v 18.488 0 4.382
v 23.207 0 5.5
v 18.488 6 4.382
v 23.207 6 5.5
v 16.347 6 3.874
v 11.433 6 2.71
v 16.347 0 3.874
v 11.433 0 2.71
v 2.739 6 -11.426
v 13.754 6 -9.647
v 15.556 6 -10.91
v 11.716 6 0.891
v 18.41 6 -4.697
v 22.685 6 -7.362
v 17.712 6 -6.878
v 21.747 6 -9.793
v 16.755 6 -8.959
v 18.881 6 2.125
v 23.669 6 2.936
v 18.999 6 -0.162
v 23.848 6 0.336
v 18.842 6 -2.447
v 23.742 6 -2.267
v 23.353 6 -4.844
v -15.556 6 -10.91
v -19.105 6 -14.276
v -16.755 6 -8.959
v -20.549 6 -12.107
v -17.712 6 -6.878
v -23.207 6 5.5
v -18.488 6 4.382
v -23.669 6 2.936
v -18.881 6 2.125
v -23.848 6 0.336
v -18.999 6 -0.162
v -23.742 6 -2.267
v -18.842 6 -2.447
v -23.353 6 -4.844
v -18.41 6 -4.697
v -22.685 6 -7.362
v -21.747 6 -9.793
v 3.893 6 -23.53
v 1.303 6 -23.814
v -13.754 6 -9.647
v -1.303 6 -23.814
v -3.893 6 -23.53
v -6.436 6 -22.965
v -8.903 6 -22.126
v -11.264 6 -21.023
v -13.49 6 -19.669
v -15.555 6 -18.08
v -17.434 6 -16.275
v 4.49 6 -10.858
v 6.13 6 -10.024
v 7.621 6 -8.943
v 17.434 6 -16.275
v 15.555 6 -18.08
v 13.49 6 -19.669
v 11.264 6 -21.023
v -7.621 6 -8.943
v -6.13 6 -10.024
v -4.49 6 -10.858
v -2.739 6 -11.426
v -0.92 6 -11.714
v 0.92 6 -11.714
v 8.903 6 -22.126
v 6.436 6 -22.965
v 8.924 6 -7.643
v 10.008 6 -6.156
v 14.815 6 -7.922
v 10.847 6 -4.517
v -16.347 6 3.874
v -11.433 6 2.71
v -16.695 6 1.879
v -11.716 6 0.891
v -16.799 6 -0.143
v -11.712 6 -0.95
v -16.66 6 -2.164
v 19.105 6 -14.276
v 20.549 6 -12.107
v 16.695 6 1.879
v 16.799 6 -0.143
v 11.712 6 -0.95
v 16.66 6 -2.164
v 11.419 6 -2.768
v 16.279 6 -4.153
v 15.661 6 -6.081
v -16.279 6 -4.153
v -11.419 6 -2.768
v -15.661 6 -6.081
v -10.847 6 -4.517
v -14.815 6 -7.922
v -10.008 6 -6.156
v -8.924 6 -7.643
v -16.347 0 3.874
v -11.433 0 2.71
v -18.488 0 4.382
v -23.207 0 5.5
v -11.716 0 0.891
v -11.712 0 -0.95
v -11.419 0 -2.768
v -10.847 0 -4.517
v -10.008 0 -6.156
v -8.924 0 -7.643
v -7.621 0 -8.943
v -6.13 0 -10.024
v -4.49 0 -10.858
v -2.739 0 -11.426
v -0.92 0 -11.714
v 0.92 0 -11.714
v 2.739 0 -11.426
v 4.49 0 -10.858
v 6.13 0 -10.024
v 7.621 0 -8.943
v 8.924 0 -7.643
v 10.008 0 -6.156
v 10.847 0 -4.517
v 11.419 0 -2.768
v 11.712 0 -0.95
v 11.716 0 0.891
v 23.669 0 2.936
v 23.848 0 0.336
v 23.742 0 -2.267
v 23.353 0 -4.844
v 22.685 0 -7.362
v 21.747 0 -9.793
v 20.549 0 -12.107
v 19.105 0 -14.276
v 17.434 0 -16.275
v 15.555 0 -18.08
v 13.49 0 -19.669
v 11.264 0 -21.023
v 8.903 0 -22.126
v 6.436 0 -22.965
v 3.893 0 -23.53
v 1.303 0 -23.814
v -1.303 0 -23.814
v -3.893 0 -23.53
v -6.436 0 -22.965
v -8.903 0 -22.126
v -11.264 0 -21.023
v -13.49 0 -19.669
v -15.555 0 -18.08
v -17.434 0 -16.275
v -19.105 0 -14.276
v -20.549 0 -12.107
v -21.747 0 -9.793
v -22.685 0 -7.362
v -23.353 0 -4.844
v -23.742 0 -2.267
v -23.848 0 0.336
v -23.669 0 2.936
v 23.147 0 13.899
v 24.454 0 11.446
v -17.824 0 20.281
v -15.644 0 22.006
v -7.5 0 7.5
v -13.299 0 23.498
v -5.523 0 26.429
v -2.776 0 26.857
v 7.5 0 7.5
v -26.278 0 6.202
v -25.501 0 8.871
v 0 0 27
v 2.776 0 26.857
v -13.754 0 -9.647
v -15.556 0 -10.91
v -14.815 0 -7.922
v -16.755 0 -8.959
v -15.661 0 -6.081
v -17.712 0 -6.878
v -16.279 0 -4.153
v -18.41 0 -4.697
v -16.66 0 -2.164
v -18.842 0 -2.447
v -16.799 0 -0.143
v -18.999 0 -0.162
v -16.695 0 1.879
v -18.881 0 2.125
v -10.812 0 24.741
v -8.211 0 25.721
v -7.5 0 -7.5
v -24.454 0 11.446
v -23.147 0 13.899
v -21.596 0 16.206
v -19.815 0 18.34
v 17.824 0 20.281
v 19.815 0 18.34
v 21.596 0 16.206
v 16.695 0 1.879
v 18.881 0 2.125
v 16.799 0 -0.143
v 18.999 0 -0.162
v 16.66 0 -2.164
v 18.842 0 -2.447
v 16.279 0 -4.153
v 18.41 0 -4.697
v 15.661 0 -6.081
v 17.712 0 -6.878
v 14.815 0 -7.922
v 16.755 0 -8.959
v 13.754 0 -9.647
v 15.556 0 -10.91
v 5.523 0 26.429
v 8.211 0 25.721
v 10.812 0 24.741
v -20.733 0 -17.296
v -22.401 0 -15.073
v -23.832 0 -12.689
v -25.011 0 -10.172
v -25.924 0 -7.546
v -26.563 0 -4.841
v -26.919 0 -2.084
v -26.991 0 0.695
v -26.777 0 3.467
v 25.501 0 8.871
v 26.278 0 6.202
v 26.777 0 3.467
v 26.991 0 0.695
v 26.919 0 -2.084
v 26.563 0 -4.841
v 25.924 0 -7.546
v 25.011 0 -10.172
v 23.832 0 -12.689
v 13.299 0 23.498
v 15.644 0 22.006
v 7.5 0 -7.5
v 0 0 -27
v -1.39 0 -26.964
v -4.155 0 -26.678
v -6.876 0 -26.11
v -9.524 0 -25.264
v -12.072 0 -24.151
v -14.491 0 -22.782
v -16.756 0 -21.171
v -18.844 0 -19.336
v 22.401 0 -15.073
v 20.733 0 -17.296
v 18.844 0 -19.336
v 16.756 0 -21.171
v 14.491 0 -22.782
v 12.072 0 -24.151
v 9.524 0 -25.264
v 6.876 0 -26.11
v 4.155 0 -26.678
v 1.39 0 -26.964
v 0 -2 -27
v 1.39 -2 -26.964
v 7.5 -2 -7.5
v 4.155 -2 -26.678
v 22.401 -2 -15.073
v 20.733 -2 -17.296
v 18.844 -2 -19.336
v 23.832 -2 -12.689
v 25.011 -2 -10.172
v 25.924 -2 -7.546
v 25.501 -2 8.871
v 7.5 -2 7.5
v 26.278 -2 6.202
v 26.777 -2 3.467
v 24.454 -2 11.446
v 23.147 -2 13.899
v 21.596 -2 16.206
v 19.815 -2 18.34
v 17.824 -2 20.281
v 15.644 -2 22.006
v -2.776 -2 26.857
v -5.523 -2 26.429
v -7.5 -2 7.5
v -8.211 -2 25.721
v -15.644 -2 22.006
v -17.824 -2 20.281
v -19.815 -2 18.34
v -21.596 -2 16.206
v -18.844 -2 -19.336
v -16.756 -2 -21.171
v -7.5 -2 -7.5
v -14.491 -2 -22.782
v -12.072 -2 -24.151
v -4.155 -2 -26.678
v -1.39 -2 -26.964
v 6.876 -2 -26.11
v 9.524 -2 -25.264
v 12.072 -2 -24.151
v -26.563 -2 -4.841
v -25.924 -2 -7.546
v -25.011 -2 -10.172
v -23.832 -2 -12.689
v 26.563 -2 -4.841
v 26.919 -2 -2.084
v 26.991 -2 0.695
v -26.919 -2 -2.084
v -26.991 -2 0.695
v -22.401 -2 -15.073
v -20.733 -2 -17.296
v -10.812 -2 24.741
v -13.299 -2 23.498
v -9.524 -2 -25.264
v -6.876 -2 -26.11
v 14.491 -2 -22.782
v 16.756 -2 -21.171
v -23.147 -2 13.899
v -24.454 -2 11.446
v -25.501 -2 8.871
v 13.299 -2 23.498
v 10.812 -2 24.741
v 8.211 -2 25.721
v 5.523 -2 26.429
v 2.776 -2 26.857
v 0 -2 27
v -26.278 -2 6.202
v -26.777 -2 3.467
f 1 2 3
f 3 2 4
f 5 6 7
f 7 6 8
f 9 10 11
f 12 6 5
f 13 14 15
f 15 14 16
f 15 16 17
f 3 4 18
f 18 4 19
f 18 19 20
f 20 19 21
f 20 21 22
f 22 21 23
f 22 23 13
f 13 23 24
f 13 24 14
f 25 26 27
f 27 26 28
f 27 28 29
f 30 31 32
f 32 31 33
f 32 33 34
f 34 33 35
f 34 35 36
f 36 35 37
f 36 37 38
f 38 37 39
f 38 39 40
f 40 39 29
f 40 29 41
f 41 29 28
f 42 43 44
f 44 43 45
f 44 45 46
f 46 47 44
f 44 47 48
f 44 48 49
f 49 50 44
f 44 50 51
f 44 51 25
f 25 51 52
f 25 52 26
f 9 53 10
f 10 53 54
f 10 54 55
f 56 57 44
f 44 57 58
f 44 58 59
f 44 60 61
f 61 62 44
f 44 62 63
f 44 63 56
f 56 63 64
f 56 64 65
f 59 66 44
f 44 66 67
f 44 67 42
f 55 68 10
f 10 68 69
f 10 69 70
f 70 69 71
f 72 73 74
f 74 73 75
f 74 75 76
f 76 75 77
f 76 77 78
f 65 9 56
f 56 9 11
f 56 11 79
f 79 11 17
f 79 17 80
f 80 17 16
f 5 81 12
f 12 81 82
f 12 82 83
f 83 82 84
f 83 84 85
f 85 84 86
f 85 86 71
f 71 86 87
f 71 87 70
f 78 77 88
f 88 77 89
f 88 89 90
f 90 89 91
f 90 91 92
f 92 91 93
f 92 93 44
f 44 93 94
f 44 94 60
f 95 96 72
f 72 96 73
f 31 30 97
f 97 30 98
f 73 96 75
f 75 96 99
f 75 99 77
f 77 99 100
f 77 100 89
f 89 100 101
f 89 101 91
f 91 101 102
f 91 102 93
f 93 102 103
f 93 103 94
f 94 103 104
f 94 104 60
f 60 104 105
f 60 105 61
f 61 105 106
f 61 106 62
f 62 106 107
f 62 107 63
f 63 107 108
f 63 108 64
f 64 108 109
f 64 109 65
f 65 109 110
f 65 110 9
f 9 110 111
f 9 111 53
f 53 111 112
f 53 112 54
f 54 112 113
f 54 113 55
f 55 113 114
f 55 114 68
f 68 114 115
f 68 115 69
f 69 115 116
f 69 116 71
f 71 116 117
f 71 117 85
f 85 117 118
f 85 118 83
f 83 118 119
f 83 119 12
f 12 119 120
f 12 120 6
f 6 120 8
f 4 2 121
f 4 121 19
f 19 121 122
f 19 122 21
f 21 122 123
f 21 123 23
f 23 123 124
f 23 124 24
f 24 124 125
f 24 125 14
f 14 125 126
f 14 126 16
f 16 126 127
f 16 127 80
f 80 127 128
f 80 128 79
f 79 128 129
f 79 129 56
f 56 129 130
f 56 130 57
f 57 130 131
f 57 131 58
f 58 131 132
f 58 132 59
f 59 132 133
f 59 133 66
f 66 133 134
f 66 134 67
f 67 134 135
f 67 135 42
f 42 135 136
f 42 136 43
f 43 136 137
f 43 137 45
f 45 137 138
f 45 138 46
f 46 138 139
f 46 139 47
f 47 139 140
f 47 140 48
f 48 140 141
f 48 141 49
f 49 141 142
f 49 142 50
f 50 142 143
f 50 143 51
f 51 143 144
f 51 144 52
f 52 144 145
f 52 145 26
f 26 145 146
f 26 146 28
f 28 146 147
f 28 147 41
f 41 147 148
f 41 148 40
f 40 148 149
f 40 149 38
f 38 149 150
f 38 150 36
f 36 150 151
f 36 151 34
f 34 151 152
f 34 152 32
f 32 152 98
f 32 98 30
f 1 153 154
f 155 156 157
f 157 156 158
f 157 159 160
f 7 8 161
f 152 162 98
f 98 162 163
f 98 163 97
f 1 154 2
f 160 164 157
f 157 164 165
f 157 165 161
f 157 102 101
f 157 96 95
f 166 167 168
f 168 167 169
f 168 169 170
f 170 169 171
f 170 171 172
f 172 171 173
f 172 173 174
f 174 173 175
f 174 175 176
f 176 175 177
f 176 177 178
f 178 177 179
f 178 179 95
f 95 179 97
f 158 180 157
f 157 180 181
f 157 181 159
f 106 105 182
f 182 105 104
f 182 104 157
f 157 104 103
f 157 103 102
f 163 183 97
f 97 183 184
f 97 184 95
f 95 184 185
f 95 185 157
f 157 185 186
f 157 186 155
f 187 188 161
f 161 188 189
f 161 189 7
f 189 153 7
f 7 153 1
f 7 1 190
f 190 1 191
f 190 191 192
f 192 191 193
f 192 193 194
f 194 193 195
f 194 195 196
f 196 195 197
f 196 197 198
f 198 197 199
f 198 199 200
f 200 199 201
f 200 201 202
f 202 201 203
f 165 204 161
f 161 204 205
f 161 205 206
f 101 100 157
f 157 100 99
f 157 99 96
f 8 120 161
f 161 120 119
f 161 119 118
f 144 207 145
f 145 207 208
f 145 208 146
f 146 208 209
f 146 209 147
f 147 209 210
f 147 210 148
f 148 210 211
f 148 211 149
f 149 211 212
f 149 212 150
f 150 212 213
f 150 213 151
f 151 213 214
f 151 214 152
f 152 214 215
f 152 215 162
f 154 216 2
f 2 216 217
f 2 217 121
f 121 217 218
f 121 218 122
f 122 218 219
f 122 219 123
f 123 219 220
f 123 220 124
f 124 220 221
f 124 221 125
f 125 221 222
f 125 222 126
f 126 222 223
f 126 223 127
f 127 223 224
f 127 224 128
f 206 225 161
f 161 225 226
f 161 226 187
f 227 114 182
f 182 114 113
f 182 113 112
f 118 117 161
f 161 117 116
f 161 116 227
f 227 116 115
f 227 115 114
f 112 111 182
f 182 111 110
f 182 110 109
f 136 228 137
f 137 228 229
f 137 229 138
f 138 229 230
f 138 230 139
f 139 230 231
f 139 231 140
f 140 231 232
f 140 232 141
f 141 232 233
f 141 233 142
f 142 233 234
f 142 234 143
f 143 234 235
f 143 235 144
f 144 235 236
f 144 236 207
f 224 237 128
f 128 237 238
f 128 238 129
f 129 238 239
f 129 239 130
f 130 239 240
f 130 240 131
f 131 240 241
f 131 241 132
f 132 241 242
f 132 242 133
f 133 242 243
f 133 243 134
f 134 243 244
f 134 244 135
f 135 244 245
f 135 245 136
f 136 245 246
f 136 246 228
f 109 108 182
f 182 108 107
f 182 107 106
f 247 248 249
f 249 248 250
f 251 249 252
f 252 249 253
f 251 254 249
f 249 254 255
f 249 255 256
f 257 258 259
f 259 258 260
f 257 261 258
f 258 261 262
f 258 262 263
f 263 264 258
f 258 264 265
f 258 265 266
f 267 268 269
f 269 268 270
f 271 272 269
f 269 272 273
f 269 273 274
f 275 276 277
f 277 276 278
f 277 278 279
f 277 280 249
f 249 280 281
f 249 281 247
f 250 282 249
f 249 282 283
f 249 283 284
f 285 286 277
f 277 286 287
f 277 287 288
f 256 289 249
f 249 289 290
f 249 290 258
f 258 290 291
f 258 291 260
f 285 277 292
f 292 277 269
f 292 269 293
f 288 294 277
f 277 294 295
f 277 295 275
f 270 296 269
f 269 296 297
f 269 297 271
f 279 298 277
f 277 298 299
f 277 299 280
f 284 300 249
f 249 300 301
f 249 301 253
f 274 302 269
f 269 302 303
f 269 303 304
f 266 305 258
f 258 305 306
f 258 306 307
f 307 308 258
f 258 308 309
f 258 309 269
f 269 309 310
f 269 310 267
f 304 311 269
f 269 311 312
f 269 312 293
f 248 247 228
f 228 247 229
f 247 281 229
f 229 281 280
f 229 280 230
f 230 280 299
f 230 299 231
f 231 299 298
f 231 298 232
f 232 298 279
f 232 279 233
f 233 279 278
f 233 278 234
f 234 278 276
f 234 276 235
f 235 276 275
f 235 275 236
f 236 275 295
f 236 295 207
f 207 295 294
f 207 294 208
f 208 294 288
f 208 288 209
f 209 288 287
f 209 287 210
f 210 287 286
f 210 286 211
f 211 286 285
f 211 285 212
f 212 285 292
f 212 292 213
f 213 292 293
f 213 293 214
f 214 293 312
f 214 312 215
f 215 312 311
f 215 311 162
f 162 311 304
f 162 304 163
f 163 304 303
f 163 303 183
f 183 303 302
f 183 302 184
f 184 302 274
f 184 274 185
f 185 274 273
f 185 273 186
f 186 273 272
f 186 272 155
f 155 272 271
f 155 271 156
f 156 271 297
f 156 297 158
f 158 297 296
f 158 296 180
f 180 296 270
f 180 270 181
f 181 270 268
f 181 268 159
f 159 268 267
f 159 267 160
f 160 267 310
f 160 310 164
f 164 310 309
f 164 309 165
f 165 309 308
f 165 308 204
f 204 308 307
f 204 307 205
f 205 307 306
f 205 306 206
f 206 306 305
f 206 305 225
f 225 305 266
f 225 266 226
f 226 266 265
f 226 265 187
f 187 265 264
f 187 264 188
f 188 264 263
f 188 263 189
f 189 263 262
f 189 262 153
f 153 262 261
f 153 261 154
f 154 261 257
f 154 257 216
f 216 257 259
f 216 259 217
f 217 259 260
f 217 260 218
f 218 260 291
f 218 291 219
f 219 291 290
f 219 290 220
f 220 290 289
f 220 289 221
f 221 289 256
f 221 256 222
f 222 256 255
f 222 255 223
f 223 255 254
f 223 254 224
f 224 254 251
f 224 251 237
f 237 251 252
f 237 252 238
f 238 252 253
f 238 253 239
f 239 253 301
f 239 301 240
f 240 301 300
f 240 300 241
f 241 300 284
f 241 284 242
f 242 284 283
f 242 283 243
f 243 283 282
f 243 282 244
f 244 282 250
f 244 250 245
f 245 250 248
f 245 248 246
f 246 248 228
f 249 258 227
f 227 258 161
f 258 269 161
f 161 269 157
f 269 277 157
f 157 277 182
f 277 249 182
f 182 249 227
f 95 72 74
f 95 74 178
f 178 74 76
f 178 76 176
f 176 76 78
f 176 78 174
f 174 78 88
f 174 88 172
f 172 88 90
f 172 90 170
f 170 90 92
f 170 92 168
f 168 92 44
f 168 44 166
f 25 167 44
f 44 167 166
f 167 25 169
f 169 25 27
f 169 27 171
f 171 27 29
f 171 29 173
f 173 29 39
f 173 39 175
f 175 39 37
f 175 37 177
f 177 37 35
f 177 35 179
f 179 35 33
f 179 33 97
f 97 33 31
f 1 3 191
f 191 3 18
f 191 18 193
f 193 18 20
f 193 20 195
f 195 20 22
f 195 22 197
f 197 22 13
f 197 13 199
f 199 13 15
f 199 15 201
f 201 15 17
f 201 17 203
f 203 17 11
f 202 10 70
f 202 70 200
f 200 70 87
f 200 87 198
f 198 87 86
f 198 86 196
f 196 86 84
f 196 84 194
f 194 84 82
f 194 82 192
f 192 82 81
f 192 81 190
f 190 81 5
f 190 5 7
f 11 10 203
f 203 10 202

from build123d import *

# Parameters (mm, degrees)
BOSS_EXTRUDE1_DEPTH = 6
SKETCH2_R           = 27
SKETCH2_W           = 15
SKETCH2_H           = 15
BOSS_EXTRUDE2_DEPTH = 2
CUT_EXTRUDE1_DEPTH  = 6


with BuildPart() as part:
    # Sketch1 → Boss-Extrude1 (new body)
    with BuildSketch(Plane(origin=(0, 0, 0), x_dir=(1, 0, 0), z_dir=(0, 1, 0))):
        with BuildLine():
            Line((-23.207164842, -5.5), (-11.433299241, -2.709643606))
            ThreePointArc((-11.433299241, -2.709643606), (0, 11.75), (11.433299241, -2.709643606))
            Line((11.433299241, -2.709643606), (23.207164842, -5.5))
            ThreePointArc((23.207164842, -5.5), (0, 23.85), (-23.207164842, -5.5))
        make_face()
    extrude(amount=BOSS_EXTRUDE1_DEPTH)

    # Sketch2 → Boss-Extrude2 (add)
    with BuildSketch(Plane.XZ):
        with Locations(Location((0, 0, 0), (0, 0, 270))):
            Circle(SKETCH2_R)
        Rectangle(SKETCH2_W, SKETCH2_H, mode=Mode.SUBTRACT)
    extrude(amount=BOSS_EXTRUDE2_DEPTH)

    # Sketch3 → Cut-Extrude1 (cut)
    with BuildSketch(Plane(origin=(0, 6, 0), x_dir=(1, 0, 0), z_dir=(0, 1, 0))):
        with BuildLine():
            Line((-15.555508902, 10.909910303), (-13.754344713, 9.646657531))
            ThreePointArc((-13.754344713, 9.646657531), (-16.499364166, 3.16401361), (-16.347185297, -3.874213836))
            Line((-16.347185297, -3.874213836), (-18.487888134, -4.381551363))
            ThreePointArc((-18.487888134, -4.381551363), (-18.659995187, 3.578348726), (-15.555508902, 10.909910303))
        make_face()
    cut_extrude1 = extrude(amount=-CUT_EXTRUDE1_DEPTH, mode=Mode.SUBTRACT)

    # Mirror1: Cut-Extrude1 across plane
    add(cut_extrude1.mirror(Plane(origin=(0, 0, 0), x_dir=(0, 0, 1), z_dir=(1, 0, 0))), mode=Mode.SUBTRACT)


solid = part.part
